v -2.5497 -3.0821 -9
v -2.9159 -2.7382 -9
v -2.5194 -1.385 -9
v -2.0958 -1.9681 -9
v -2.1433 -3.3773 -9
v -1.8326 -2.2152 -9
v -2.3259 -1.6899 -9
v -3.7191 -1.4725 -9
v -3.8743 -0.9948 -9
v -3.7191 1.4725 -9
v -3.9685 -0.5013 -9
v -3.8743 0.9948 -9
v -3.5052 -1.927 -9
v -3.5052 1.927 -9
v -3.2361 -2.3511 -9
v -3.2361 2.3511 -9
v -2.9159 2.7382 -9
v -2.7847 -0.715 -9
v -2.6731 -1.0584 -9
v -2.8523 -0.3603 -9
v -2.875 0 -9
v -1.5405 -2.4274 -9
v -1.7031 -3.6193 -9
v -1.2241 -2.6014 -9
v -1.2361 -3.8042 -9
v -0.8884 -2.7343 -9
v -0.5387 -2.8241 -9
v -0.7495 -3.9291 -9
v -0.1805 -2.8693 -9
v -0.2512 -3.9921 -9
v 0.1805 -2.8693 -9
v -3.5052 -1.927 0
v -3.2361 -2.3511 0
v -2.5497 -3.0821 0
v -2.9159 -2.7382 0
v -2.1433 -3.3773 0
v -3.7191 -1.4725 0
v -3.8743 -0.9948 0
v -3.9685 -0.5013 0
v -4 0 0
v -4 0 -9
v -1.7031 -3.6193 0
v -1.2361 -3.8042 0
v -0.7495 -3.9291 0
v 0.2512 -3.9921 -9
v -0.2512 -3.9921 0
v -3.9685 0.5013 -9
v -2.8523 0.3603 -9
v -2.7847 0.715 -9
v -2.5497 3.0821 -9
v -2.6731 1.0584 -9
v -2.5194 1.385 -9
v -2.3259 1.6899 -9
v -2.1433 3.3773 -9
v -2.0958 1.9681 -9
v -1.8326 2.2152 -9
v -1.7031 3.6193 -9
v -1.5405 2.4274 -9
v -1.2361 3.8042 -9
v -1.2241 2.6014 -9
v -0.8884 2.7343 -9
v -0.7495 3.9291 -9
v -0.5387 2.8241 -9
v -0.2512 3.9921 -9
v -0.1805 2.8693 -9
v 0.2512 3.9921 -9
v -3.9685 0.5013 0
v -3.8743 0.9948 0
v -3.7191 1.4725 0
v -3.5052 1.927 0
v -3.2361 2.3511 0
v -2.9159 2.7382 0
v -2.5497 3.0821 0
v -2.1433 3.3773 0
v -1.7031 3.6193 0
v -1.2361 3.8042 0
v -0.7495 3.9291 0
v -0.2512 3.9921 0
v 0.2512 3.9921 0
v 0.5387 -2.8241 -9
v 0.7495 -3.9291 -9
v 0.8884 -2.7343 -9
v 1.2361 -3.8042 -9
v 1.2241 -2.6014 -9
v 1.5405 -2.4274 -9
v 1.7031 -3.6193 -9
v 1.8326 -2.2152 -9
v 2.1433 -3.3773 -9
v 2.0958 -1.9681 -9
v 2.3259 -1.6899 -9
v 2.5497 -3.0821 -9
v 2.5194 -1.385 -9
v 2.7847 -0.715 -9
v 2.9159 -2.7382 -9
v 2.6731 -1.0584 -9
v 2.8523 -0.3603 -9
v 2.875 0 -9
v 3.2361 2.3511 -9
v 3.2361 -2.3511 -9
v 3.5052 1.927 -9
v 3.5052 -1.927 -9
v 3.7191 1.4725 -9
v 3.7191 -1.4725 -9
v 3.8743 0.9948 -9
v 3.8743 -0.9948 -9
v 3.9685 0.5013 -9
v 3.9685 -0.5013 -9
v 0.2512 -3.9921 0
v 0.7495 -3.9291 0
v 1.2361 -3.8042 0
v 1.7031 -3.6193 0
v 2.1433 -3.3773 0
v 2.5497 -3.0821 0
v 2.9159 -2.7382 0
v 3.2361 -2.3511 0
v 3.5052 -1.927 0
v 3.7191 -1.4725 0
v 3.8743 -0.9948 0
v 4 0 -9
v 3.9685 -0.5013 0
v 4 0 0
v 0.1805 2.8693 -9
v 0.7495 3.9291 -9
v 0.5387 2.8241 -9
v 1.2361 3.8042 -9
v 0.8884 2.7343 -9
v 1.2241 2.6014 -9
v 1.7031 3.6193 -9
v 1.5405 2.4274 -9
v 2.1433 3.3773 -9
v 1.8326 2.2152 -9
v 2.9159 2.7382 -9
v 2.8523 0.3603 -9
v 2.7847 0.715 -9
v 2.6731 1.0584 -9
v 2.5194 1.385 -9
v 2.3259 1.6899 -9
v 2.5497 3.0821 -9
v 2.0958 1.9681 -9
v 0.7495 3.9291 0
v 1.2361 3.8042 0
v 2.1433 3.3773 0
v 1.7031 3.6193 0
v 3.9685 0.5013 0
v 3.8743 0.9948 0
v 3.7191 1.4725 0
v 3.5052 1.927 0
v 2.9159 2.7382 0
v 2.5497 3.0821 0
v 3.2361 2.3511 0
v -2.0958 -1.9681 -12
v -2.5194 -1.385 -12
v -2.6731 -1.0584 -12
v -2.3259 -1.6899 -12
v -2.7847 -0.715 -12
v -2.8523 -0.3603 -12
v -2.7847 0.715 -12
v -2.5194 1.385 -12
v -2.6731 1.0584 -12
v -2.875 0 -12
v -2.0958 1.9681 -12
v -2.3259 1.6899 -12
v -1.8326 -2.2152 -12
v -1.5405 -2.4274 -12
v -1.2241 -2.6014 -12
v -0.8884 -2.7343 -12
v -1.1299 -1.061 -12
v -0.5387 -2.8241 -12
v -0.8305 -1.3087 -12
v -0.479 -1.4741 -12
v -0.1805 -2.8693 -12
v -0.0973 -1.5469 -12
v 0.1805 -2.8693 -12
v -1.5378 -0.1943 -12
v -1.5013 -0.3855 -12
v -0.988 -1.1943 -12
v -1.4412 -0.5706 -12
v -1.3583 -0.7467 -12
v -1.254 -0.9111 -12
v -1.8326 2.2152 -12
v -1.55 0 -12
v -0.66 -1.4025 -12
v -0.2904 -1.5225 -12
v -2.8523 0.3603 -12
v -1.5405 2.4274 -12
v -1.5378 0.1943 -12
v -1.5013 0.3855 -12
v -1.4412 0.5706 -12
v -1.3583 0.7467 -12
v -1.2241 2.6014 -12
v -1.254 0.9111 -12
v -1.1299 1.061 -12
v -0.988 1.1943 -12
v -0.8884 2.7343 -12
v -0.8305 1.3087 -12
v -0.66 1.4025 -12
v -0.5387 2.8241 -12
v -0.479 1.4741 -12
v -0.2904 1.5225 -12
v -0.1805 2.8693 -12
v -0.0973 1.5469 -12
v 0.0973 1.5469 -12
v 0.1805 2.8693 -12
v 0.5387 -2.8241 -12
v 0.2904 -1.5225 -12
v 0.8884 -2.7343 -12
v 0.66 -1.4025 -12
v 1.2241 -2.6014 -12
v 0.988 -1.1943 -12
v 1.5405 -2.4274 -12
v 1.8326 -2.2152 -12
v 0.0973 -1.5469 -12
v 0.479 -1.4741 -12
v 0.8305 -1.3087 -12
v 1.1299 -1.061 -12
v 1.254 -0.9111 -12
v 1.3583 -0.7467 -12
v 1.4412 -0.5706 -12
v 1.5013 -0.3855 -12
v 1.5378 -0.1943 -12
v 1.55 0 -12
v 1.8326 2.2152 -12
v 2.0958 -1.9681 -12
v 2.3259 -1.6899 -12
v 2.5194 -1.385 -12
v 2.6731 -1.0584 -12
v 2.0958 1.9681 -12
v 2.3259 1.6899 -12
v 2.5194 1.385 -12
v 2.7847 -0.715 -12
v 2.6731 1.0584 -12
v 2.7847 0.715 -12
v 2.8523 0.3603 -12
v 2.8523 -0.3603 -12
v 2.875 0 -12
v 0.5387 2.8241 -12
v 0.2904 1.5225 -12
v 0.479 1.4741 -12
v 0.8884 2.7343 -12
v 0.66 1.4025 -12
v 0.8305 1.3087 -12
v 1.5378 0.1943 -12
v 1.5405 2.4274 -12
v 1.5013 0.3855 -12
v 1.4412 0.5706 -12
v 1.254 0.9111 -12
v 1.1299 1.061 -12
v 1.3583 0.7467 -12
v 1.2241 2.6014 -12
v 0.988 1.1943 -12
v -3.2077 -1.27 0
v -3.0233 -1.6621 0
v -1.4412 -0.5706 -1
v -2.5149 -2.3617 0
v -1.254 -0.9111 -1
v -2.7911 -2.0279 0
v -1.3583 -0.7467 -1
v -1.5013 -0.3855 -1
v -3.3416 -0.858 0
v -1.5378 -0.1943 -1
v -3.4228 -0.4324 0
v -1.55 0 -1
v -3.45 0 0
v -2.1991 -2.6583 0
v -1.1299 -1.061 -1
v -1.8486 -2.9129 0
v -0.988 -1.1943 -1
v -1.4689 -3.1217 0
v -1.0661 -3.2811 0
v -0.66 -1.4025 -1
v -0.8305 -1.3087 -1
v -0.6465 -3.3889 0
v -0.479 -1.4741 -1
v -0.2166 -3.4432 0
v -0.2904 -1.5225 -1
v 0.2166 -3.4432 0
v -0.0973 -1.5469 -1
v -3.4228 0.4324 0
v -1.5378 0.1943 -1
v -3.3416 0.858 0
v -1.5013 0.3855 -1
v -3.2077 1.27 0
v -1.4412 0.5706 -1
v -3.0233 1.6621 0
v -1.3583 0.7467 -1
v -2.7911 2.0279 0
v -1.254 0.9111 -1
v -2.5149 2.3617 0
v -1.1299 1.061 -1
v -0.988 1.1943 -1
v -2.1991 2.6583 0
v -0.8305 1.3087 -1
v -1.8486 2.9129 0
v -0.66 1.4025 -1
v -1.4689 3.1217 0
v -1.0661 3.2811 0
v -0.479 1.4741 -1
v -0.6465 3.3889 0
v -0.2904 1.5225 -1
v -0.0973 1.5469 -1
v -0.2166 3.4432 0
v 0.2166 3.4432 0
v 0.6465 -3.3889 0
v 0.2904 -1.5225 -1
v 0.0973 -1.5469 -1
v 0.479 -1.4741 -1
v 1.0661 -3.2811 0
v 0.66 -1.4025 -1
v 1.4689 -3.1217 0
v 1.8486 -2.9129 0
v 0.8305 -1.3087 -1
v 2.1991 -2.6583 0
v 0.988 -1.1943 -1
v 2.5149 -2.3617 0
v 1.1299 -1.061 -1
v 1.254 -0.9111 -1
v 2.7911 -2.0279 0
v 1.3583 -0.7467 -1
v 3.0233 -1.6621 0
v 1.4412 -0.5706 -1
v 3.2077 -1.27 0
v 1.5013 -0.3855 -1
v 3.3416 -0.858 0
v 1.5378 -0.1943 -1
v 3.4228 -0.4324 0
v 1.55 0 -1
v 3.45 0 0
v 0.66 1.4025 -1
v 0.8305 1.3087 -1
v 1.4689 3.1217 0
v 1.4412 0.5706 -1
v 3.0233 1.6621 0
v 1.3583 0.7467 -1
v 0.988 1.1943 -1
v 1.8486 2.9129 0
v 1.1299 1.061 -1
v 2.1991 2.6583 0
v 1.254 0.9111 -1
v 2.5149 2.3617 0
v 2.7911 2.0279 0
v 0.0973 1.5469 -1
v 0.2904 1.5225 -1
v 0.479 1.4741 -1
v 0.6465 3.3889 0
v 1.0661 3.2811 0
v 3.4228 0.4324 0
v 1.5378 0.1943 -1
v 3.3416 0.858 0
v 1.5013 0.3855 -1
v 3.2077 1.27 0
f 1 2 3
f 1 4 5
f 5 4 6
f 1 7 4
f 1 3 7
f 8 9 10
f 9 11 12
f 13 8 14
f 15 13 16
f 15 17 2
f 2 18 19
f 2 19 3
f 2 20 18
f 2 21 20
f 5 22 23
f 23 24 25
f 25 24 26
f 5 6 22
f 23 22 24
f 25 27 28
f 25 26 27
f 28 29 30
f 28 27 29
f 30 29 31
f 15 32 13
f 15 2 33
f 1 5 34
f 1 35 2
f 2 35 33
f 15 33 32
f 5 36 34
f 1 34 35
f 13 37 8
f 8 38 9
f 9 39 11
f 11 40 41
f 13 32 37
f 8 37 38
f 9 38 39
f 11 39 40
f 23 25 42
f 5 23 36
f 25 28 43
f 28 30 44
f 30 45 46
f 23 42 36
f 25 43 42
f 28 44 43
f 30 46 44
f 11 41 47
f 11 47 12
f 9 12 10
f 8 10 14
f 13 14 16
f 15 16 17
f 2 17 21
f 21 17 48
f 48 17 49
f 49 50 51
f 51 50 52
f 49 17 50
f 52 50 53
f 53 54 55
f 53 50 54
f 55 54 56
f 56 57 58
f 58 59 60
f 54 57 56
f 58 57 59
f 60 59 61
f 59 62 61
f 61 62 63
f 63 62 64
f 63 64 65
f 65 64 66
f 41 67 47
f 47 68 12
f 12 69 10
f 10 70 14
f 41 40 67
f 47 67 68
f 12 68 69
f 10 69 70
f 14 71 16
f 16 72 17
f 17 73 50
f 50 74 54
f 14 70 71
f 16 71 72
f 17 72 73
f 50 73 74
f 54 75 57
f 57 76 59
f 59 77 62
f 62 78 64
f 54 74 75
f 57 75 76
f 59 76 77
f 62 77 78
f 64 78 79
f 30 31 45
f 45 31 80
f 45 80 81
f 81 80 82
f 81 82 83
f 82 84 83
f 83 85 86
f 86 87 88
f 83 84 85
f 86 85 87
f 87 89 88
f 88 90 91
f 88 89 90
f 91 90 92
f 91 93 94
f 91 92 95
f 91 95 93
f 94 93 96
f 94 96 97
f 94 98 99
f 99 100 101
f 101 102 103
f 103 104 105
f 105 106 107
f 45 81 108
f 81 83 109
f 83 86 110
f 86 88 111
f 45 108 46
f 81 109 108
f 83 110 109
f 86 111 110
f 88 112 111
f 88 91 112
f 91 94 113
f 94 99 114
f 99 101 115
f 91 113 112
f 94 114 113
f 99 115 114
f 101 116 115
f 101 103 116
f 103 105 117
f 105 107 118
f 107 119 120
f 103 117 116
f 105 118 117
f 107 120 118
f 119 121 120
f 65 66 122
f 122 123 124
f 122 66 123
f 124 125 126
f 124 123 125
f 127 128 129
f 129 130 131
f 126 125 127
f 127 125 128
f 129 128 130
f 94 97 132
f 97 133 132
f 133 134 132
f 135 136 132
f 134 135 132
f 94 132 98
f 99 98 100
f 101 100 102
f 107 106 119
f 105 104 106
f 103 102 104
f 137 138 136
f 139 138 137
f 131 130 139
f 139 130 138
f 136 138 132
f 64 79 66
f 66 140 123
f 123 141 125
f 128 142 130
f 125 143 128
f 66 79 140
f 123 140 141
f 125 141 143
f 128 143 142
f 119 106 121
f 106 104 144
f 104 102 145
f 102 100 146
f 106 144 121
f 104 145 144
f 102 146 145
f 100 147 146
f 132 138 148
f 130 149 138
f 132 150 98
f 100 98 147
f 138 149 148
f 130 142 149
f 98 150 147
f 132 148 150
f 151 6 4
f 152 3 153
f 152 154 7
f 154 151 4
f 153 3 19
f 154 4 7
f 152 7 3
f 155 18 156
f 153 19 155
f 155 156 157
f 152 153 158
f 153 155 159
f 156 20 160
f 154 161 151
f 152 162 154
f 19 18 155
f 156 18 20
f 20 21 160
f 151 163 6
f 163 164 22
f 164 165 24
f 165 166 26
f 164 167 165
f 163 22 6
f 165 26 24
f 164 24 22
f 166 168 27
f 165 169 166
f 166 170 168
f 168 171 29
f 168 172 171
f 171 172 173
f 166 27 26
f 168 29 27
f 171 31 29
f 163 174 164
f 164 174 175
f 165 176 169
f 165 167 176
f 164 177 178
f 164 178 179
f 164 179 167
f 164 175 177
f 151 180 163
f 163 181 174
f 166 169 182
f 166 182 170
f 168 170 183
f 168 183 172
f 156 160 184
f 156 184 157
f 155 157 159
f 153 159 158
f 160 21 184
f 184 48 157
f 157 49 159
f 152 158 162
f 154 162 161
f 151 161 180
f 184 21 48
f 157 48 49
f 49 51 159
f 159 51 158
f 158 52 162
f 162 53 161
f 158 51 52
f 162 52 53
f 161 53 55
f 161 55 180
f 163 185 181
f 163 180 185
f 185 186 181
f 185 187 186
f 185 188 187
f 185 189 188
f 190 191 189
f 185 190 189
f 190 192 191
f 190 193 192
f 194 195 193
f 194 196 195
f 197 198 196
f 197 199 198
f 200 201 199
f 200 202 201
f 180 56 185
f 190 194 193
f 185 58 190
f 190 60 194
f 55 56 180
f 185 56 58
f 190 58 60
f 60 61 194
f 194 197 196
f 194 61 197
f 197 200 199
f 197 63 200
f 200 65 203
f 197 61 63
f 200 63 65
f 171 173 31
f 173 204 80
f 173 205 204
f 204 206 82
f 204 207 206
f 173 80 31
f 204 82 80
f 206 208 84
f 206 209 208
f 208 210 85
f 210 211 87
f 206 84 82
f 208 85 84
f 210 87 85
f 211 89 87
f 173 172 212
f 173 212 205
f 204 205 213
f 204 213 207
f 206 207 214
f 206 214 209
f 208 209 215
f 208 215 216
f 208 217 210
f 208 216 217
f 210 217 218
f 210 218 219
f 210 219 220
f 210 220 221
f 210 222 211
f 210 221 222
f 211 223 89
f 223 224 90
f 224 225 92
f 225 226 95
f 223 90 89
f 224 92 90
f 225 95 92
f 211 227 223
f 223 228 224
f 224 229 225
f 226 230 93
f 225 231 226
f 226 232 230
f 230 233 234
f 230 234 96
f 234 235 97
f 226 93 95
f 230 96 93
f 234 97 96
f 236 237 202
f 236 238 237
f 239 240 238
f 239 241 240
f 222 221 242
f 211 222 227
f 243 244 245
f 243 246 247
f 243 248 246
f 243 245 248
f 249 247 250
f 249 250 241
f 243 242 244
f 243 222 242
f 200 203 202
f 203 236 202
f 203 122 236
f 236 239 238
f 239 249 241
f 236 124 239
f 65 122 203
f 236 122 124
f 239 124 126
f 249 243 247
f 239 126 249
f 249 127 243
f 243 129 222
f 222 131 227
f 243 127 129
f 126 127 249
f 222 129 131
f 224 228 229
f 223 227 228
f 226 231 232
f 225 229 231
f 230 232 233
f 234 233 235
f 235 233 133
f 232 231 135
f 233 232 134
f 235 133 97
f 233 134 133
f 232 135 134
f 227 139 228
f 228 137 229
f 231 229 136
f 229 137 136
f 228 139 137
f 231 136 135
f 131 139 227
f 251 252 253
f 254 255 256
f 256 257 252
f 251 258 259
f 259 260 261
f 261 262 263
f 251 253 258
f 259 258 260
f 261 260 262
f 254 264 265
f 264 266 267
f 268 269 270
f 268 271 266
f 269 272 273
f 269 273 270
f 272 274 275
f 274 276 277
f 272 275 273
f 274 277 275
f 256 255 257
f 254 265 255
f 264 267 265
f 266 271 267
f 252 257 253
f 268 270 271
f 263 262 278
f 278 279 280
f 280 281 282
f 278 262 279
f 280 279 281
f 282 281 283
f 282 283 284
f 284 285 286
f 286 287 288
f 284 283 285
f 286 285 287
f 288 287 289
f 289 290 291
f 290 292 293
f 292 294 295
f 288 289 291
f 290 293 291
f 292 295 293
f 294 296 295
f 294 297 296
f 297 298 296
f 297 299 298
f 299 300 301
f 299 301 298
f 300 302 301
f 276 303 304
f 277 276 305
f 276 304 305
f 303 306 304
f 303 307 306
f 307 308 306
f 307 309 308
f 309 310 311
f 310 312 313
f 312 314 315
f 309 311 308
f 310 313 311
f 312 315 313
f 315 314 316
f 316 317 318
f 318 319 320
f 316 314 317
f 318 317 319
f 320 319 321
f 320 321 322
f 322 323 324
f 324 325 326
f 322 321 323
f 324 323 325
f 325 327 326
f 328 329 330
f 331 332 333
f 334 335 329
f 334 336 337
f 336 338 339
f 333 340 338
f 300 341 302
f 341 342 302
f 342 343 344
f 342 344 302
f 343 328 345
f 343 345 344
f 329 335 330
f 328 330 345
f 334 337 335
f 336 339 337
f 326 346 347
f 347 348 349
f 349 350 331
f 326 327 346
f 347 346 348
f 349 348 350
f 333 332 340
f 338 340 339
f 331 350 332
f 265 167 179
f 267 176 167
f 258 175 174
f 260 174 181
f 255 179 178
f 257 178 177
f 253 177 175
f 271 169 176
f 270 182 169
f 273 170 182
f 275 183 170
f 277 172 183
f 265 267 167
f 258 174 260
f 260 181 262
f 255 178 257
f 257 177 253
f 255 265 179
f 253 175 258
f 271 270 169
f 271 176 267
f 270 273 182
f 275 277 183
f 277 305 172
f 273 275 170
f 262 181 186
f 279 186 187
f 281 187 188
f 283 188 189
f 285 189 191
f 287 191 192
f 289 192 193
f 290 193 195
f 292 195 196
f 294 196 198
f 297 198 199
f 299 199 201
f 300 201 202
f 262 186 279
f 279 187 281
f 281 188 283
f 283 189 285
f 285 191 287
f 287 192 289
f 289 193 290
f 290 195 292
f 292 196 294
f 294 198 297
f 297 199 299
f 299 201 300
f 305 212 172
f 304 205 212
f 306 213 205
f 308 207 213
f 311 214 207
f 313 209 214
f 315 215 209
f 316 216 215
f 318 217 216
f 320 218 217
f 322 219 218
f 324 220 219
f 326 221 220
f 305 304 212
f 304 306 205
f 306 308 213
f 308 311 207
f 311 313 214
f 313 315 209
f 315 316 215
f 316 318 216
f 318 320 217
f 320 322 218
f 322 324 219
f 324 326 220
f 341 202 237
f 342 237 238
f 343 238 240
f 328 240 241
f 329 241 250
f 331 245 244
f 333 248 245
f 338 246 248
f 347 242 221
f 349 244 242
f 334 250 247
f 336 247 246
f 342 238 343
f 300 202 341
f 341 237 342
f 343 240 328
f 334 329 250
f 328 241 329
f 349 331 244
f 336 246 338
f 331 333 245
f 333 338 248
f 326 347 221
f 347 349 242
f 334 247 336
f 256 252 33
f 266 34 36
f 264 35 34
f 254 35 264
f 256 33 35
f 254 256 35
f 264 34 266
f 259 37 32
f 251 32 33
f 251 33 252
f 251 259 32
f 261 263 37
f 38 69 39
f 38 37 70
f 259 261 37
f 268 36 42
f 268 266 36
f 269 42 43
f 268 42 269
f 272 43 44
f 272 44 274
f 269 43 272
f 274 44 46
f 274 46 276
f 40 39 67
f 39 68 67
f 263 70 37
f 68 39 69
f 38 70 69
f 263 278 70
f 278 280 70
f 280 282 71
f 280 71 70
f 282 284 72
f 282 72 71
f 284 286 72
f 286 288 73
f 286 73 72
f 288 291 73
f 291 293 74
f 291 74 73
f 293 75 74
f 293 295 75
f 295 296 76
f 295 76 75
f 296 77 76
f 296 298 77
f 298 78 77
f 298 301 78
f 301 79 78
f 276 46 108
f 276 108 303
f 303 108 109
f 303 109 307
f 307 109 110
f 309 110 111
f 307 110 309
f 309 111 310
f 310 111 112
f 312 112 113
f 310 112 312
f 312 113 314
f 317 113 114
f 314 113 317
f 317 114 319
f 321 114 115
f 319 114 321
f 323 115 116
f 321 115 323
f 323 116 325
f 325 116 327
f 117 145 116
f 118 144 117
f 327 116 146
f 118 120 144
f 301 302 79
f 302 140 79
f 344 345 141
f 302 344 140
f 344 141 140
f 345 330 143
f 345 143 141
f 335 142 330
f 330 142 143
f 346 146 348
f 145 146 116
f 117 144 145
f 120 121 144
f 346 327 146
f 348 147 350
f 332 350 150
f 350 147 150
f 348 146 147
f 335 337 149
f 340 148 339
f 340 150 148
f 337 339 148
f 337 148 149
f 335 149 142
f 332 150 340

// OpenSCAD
$fn = 50;

difference() {
	union() {
		translate(v = [0, 0, -9.0]) {
			cylinder(h = 12, r = 4.0);
		}
		#translate(v = [0, 0, -12.0]) {
			cylinder(h = 12, r = 2.875);
		}
	}
	union() {
		translate(v = [0, 0, 0]) {
			rotate(a = [0, 0, 0]) {
				difference() {
					union() {
						translate(v = [0, 0, -12.0]) {
							cylinder(h = 12, r = 1.25);
						}
						translate(v = [0, 0, -1.0]) {
							cylinder(h = 1.0, r1 = 1.55, r2 = 3.45);
						}
						translate(v = [0, 0, -12.0]) {
							cylinder(h = 12, r = 1.55);
						}
						translate(v = [0, 0, -12.0]) {
							cylinder(h = 12, r = 1.25);
						}
					}
					union();
				}
			}
		}
		#cylinder(h = 3, r = 5.0);
	}
}
